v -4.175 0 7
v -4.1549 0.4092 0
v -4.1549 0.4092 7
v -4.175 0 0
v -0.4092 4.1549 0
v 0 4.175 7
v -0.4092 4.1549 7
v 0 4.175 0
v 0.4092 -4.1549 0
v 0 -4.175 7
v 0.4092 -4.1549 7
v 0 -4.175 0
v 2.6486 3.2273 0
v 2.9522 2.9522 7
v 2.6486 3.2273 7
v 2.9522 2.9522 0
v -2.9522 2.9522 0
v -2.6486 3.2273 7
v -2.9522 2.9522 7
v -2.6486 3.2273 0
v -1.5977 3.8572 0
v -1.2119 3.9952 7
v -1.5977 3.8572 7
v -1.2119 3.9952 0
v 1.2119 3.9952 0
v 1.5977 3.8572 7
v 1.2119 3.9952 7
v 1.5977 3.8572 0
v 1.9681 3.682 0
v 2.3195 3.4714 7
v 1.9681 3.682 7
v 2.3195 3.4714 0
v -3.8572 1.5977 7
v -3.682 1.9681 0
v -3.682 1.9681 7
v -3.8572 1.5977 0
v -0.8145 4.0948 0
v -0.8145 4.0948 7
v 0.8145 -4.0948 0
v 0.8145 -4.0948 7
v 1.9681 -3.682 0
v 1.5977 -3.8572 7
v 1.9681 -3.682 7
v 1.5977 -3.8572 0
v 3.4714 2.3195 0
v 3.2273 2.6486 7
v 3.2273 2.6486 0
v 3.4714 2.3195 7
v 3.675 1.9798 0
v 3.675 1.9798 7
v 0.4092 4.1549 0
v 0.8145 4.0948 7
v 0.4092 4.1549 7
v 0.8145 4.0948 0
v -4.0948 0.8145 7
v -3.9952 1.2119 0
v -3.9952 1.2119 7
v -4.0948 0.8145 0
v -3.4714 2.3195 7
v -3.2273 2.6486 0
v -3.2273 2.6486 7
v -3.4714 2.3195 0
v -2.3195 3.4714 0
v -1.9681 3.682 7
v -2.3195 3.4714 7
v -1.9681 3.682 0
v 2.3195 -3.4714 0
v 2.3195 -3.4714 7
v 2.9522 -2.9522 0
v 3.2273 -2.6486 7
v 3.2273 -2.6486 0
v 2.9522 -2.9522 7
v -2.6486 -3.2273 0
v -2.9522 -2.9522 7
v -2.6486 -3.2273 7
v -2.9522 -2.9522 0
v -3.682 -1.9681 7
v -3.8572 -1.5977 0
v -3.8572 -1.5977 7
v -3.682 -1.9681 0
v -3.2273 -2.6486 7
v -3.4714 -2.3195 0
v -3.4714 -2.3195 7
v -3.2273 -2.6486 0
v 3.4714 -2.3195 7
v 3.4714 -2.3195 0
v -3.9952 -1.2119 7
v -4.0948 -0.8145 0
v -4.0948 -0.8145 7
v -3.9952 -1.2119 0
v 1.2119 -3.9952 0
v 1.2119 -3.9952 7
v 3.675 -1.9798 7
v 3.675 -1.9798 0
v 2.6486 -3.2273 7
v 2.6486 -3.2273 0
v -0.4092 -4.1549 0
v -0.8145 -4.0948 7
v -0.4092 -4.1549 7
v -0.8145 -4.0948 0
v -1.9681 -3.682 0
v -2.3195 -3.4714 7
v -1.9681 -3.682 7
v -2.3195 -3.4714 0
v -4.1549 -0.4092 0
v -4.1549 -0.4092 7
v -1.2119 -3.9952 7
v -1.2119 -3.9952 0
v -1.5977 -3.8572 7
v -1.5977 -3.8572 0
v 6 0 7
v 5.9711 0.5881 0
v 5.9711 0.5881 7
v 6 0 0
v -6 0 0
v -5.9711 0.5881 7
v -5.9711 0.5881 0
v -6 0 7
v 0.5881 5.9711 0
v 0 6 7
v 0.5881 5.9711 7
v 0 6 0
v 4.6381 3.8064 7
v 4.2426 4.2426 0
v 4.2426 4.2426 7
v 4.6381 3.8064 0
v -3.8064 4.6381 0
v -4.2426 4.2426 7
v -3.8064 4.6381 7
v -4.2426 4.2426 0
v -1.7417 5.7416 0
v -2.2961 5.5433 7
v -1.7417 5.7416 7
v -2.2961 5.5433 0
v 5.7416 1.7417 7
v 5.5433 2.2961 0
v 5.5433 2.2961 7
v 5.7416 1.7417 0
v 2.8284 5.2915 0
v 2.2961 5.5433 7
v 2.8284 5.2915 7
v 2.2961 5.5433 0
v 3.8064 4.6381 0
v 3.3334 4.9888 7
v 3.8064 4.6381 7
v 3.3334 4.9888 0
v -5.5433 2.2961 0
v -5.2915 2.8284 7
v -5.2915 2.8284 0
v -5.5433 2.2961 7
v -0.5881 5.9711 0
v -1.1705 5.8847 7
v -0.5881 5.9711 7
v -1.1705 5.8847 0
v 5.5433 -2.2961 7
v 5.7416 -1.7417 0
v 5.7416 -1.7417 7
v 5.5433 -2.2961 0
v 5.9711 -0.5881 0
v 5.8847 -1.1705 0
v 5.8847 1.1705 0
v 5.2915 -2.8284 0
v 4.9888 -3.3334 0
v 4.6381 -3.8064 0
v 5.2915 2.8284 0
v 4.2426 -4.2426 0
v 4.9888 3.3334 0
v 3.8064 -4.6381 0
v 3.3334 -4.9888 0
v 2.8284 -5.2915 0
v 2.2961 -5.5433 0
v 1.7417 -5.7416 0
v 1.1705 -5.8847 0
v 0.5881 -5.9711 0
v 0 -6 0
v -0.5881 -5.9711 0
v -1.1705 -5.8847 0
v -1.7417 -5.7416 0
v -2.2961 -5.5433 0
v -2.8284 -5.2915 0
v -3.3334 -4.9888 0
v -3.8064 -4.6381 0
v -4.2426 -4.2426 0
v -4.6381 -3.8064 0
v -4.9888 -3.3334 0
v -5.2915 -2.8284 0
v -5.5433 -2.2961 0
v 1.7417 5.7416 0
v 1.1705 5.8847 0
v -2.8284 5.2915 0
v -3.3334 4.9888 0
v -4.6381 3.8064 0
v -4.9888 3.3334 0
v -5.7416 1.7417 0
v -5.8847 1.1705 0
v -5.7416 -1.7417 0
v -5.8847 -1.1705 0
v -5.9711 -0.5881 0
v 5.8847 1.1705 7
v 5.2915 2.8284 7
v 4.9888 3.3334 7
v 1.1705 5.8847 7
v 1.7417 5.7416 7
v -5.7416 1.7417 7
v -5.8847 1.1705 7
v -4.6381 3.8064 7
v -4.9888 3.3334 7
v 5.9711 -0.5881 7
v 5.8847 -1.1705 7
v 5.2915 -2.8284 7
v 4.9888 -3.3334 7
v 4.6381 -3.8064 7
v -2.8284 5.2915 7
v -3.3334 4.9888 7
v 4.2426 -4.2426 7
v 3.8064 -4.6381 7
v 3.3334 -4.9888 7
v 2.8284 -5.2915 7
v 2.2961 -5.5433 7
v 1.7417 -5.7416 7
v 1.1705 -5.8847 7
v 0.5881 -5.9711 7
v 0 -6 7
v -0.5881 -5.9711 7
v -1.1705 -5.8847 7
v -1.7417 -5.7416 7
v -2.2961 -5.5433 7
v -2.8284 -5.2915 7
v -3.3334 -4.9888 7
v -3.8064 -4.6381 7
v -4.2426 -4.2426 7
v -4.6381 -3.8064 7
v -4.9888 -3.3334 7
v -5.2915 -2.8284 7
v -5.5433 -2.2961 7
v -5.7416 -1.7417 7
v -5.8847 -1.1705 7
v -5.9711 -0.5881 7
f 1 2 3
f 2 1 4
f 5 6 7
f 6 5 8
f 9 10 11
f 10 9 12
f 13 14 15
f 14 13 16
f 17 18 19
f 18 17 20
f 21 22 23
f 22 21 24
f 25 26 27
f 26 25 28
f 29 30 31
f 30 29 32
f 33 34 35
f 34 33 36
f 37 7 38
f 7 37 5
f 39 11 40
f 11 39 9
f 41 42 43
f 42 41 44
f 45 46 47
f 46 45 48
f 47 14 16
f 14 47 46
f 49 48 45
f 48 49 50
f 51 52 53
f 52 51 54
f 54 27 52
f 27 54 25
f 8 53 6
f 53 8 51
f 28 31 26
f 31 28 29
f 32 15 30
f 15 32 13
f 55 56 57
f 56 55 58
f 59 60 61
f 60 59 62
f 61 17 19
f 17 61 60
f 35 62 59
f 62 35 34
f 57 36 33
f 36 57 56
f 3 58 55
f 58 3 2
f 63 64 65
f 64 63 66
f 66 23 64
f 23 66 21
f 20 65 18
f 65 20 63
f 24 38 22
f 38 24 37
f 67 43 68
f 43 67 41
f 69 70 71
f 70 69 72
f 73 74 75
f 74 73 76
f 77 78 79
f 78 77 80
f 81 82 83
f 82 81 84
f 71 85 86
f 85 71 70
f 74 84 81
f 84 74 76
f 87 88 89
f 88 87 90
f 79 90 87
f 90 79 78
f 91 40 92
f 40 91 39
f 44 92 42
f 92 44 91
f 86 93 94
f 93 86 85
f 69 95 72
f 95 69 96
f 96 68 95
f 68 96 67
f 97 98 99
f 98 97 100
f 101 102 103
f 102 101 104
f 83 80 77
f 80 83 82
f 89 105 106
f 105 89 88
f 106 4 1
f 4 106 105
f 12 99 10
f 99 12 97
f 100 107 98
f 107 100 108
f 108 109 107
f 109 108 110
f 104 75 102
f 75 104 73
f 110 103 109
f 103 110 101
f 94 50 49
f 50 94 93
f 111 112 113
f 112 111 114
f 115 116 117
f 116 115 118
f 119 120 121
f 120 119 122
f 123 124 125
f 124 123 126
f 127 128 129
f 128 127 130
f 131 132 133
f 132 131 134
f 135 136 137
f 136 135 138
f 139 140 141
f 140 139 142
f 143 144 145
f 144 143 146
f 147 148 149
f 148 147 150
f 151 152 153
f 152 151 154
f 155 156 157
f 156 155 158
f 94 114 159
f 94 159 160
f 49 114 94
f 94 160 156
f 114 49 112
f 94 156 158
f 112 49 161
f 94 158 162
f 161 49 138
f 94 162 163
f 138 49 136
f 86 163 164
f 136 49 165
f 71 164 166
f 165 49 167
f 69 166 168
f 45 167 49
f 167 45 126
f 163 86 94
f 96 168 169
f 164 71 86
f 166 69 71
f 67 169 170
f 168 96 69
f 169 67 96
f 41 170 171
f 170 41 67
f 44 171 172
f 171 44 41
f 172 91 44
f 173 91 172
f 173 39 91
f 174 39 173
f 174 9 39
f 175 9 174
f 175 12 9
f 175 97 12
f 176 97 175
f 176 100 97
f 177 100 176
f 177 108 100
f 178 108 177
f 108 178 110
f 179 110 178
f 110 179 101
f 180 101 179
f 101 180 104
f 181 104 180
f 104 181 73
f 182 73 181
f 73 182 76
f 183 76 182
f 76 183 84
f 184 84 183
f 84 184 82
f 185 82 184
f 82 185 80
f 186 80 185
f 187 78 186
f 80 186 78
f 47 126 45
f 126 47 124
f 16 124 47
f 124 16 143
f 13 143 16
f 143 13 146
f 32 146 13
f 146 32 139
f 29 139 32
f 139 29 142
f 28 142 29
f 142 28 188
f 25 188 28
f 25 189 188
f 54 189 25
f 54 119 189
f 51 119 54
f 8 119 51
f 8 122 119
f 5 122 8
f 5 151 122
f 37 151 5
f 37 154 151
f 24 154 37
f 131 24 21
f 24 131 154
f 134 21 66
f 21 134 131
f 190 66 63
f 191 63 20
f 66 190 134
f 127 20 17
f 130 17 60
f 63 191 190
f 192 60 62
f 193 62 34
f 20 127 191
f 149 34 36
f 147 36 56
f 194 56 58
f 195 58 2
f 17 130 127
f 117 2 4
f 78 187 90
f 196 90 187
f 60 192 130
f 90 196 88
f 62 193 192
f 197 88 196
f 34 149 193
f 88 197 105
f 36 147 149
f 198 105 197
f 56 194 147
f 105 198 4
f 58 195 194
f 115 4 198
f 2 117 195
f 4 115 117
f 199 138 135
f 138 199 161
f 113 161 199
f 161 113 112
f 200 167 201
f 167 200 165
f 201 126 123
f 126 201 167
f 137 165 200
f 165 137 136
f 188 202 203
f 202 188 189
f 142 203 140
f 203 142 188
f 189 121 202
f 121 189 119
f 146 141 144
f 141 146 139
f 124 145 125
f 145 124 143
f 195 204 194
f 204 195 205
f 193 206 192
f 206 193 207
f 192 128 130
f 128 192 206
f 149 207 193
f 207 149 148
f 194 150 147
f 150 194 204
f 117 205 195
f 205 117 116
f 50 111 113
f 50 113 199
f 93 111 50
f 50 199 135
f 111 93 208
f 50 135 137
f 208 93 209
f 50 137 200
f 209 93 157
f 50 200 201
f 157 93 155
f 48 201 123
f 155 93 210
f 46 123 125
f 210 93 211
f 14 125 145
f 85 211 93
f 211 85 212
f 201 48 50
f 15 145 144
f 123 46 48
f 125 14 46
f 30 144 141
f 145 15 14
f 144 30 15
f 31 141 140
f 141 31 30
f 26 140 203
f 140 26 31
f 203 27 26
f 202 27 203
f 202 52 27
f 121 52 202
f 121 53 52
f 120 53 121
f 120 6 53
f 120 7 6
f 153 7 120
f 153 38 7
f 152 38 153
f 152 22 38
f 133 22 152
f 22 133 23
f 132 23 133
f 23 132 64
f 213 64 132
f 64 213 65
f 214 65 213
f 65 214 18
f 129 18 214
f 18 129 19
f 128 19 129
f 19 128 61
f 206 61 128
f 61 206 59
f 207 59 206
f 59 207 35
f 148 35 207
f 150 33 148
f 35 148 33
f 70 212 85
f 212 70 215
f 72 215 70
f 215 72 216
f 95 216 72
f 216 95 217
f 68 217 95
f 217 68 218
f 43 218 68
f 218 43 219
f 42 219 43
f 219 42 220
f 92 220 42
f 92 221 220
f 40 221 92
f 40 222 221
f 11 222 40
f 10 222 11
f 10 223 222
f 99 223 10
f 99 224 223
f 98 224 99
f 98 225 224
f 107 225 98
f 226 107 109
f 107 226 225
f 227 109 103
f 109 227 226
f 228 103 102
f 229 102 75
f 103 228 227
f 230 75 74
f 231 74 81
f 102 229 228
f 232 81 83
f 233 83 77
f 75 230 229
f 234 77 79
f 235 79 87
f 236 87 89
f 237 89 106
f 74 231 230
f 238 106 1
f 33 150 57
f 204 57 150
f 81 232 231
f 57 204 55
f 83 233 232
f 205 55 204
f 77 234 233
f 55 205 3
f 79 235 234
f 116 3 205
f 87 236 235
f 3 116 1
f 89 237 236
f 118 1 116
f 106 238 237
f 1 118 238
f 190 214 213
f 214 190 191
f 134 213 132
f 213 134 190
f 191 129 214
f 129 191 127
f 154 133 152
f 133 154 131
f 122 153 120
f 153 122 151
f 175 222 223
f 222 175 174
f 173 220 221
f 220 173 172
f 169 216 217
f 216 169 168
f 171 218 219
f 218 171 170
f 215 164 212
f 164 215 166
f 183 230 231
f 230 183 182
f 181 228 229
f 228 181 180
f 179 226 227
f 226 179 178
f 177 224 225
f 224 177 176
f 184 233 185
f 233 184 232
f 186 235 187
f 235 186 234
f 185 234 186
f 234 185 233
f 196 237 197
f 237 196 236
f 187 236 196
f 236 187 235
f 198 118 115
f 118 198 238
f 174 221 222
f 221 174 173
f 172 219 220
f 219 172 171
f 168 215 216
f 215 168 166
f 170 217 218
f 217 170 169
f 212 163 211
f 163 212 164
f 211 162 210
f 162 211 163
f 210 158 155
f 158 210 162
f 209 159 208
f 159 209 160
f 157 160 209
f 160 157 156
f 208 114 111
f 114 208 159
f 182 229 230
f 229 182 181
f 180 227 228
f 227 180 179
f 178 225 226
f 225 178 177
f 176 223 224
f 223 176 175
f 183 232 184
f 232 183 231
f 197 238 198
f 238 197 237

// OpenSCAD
// Gen-DZ — gap sleeve: rigid spacer on the shaft BETWEEN the two rotor carriers (passes through the stator
// hole). Length = m2m, so it sets the magnet gap and carries the full magnet pull. Print x1, upright.
include <parameters.scad>;
$fn = 64;
// D-flat keyed bore: flat faces +X (angle 0 = magnet pocket 0 = index notch)
module dflat_bore(h) {
    intersection() {
        cylinder(d=shaft_bore, h=h);
        translate([-shaft_bore, -shaft_bore, 0]) cube([shaft_bore + dflat_x, 2*shaft_bore, h]);
    }
}

difference() {
    cylinder(d=sleeve_od, h=m2m);
    translate([0, 0, -0.1]) dflat_bore(m2m + 0.2);
}
